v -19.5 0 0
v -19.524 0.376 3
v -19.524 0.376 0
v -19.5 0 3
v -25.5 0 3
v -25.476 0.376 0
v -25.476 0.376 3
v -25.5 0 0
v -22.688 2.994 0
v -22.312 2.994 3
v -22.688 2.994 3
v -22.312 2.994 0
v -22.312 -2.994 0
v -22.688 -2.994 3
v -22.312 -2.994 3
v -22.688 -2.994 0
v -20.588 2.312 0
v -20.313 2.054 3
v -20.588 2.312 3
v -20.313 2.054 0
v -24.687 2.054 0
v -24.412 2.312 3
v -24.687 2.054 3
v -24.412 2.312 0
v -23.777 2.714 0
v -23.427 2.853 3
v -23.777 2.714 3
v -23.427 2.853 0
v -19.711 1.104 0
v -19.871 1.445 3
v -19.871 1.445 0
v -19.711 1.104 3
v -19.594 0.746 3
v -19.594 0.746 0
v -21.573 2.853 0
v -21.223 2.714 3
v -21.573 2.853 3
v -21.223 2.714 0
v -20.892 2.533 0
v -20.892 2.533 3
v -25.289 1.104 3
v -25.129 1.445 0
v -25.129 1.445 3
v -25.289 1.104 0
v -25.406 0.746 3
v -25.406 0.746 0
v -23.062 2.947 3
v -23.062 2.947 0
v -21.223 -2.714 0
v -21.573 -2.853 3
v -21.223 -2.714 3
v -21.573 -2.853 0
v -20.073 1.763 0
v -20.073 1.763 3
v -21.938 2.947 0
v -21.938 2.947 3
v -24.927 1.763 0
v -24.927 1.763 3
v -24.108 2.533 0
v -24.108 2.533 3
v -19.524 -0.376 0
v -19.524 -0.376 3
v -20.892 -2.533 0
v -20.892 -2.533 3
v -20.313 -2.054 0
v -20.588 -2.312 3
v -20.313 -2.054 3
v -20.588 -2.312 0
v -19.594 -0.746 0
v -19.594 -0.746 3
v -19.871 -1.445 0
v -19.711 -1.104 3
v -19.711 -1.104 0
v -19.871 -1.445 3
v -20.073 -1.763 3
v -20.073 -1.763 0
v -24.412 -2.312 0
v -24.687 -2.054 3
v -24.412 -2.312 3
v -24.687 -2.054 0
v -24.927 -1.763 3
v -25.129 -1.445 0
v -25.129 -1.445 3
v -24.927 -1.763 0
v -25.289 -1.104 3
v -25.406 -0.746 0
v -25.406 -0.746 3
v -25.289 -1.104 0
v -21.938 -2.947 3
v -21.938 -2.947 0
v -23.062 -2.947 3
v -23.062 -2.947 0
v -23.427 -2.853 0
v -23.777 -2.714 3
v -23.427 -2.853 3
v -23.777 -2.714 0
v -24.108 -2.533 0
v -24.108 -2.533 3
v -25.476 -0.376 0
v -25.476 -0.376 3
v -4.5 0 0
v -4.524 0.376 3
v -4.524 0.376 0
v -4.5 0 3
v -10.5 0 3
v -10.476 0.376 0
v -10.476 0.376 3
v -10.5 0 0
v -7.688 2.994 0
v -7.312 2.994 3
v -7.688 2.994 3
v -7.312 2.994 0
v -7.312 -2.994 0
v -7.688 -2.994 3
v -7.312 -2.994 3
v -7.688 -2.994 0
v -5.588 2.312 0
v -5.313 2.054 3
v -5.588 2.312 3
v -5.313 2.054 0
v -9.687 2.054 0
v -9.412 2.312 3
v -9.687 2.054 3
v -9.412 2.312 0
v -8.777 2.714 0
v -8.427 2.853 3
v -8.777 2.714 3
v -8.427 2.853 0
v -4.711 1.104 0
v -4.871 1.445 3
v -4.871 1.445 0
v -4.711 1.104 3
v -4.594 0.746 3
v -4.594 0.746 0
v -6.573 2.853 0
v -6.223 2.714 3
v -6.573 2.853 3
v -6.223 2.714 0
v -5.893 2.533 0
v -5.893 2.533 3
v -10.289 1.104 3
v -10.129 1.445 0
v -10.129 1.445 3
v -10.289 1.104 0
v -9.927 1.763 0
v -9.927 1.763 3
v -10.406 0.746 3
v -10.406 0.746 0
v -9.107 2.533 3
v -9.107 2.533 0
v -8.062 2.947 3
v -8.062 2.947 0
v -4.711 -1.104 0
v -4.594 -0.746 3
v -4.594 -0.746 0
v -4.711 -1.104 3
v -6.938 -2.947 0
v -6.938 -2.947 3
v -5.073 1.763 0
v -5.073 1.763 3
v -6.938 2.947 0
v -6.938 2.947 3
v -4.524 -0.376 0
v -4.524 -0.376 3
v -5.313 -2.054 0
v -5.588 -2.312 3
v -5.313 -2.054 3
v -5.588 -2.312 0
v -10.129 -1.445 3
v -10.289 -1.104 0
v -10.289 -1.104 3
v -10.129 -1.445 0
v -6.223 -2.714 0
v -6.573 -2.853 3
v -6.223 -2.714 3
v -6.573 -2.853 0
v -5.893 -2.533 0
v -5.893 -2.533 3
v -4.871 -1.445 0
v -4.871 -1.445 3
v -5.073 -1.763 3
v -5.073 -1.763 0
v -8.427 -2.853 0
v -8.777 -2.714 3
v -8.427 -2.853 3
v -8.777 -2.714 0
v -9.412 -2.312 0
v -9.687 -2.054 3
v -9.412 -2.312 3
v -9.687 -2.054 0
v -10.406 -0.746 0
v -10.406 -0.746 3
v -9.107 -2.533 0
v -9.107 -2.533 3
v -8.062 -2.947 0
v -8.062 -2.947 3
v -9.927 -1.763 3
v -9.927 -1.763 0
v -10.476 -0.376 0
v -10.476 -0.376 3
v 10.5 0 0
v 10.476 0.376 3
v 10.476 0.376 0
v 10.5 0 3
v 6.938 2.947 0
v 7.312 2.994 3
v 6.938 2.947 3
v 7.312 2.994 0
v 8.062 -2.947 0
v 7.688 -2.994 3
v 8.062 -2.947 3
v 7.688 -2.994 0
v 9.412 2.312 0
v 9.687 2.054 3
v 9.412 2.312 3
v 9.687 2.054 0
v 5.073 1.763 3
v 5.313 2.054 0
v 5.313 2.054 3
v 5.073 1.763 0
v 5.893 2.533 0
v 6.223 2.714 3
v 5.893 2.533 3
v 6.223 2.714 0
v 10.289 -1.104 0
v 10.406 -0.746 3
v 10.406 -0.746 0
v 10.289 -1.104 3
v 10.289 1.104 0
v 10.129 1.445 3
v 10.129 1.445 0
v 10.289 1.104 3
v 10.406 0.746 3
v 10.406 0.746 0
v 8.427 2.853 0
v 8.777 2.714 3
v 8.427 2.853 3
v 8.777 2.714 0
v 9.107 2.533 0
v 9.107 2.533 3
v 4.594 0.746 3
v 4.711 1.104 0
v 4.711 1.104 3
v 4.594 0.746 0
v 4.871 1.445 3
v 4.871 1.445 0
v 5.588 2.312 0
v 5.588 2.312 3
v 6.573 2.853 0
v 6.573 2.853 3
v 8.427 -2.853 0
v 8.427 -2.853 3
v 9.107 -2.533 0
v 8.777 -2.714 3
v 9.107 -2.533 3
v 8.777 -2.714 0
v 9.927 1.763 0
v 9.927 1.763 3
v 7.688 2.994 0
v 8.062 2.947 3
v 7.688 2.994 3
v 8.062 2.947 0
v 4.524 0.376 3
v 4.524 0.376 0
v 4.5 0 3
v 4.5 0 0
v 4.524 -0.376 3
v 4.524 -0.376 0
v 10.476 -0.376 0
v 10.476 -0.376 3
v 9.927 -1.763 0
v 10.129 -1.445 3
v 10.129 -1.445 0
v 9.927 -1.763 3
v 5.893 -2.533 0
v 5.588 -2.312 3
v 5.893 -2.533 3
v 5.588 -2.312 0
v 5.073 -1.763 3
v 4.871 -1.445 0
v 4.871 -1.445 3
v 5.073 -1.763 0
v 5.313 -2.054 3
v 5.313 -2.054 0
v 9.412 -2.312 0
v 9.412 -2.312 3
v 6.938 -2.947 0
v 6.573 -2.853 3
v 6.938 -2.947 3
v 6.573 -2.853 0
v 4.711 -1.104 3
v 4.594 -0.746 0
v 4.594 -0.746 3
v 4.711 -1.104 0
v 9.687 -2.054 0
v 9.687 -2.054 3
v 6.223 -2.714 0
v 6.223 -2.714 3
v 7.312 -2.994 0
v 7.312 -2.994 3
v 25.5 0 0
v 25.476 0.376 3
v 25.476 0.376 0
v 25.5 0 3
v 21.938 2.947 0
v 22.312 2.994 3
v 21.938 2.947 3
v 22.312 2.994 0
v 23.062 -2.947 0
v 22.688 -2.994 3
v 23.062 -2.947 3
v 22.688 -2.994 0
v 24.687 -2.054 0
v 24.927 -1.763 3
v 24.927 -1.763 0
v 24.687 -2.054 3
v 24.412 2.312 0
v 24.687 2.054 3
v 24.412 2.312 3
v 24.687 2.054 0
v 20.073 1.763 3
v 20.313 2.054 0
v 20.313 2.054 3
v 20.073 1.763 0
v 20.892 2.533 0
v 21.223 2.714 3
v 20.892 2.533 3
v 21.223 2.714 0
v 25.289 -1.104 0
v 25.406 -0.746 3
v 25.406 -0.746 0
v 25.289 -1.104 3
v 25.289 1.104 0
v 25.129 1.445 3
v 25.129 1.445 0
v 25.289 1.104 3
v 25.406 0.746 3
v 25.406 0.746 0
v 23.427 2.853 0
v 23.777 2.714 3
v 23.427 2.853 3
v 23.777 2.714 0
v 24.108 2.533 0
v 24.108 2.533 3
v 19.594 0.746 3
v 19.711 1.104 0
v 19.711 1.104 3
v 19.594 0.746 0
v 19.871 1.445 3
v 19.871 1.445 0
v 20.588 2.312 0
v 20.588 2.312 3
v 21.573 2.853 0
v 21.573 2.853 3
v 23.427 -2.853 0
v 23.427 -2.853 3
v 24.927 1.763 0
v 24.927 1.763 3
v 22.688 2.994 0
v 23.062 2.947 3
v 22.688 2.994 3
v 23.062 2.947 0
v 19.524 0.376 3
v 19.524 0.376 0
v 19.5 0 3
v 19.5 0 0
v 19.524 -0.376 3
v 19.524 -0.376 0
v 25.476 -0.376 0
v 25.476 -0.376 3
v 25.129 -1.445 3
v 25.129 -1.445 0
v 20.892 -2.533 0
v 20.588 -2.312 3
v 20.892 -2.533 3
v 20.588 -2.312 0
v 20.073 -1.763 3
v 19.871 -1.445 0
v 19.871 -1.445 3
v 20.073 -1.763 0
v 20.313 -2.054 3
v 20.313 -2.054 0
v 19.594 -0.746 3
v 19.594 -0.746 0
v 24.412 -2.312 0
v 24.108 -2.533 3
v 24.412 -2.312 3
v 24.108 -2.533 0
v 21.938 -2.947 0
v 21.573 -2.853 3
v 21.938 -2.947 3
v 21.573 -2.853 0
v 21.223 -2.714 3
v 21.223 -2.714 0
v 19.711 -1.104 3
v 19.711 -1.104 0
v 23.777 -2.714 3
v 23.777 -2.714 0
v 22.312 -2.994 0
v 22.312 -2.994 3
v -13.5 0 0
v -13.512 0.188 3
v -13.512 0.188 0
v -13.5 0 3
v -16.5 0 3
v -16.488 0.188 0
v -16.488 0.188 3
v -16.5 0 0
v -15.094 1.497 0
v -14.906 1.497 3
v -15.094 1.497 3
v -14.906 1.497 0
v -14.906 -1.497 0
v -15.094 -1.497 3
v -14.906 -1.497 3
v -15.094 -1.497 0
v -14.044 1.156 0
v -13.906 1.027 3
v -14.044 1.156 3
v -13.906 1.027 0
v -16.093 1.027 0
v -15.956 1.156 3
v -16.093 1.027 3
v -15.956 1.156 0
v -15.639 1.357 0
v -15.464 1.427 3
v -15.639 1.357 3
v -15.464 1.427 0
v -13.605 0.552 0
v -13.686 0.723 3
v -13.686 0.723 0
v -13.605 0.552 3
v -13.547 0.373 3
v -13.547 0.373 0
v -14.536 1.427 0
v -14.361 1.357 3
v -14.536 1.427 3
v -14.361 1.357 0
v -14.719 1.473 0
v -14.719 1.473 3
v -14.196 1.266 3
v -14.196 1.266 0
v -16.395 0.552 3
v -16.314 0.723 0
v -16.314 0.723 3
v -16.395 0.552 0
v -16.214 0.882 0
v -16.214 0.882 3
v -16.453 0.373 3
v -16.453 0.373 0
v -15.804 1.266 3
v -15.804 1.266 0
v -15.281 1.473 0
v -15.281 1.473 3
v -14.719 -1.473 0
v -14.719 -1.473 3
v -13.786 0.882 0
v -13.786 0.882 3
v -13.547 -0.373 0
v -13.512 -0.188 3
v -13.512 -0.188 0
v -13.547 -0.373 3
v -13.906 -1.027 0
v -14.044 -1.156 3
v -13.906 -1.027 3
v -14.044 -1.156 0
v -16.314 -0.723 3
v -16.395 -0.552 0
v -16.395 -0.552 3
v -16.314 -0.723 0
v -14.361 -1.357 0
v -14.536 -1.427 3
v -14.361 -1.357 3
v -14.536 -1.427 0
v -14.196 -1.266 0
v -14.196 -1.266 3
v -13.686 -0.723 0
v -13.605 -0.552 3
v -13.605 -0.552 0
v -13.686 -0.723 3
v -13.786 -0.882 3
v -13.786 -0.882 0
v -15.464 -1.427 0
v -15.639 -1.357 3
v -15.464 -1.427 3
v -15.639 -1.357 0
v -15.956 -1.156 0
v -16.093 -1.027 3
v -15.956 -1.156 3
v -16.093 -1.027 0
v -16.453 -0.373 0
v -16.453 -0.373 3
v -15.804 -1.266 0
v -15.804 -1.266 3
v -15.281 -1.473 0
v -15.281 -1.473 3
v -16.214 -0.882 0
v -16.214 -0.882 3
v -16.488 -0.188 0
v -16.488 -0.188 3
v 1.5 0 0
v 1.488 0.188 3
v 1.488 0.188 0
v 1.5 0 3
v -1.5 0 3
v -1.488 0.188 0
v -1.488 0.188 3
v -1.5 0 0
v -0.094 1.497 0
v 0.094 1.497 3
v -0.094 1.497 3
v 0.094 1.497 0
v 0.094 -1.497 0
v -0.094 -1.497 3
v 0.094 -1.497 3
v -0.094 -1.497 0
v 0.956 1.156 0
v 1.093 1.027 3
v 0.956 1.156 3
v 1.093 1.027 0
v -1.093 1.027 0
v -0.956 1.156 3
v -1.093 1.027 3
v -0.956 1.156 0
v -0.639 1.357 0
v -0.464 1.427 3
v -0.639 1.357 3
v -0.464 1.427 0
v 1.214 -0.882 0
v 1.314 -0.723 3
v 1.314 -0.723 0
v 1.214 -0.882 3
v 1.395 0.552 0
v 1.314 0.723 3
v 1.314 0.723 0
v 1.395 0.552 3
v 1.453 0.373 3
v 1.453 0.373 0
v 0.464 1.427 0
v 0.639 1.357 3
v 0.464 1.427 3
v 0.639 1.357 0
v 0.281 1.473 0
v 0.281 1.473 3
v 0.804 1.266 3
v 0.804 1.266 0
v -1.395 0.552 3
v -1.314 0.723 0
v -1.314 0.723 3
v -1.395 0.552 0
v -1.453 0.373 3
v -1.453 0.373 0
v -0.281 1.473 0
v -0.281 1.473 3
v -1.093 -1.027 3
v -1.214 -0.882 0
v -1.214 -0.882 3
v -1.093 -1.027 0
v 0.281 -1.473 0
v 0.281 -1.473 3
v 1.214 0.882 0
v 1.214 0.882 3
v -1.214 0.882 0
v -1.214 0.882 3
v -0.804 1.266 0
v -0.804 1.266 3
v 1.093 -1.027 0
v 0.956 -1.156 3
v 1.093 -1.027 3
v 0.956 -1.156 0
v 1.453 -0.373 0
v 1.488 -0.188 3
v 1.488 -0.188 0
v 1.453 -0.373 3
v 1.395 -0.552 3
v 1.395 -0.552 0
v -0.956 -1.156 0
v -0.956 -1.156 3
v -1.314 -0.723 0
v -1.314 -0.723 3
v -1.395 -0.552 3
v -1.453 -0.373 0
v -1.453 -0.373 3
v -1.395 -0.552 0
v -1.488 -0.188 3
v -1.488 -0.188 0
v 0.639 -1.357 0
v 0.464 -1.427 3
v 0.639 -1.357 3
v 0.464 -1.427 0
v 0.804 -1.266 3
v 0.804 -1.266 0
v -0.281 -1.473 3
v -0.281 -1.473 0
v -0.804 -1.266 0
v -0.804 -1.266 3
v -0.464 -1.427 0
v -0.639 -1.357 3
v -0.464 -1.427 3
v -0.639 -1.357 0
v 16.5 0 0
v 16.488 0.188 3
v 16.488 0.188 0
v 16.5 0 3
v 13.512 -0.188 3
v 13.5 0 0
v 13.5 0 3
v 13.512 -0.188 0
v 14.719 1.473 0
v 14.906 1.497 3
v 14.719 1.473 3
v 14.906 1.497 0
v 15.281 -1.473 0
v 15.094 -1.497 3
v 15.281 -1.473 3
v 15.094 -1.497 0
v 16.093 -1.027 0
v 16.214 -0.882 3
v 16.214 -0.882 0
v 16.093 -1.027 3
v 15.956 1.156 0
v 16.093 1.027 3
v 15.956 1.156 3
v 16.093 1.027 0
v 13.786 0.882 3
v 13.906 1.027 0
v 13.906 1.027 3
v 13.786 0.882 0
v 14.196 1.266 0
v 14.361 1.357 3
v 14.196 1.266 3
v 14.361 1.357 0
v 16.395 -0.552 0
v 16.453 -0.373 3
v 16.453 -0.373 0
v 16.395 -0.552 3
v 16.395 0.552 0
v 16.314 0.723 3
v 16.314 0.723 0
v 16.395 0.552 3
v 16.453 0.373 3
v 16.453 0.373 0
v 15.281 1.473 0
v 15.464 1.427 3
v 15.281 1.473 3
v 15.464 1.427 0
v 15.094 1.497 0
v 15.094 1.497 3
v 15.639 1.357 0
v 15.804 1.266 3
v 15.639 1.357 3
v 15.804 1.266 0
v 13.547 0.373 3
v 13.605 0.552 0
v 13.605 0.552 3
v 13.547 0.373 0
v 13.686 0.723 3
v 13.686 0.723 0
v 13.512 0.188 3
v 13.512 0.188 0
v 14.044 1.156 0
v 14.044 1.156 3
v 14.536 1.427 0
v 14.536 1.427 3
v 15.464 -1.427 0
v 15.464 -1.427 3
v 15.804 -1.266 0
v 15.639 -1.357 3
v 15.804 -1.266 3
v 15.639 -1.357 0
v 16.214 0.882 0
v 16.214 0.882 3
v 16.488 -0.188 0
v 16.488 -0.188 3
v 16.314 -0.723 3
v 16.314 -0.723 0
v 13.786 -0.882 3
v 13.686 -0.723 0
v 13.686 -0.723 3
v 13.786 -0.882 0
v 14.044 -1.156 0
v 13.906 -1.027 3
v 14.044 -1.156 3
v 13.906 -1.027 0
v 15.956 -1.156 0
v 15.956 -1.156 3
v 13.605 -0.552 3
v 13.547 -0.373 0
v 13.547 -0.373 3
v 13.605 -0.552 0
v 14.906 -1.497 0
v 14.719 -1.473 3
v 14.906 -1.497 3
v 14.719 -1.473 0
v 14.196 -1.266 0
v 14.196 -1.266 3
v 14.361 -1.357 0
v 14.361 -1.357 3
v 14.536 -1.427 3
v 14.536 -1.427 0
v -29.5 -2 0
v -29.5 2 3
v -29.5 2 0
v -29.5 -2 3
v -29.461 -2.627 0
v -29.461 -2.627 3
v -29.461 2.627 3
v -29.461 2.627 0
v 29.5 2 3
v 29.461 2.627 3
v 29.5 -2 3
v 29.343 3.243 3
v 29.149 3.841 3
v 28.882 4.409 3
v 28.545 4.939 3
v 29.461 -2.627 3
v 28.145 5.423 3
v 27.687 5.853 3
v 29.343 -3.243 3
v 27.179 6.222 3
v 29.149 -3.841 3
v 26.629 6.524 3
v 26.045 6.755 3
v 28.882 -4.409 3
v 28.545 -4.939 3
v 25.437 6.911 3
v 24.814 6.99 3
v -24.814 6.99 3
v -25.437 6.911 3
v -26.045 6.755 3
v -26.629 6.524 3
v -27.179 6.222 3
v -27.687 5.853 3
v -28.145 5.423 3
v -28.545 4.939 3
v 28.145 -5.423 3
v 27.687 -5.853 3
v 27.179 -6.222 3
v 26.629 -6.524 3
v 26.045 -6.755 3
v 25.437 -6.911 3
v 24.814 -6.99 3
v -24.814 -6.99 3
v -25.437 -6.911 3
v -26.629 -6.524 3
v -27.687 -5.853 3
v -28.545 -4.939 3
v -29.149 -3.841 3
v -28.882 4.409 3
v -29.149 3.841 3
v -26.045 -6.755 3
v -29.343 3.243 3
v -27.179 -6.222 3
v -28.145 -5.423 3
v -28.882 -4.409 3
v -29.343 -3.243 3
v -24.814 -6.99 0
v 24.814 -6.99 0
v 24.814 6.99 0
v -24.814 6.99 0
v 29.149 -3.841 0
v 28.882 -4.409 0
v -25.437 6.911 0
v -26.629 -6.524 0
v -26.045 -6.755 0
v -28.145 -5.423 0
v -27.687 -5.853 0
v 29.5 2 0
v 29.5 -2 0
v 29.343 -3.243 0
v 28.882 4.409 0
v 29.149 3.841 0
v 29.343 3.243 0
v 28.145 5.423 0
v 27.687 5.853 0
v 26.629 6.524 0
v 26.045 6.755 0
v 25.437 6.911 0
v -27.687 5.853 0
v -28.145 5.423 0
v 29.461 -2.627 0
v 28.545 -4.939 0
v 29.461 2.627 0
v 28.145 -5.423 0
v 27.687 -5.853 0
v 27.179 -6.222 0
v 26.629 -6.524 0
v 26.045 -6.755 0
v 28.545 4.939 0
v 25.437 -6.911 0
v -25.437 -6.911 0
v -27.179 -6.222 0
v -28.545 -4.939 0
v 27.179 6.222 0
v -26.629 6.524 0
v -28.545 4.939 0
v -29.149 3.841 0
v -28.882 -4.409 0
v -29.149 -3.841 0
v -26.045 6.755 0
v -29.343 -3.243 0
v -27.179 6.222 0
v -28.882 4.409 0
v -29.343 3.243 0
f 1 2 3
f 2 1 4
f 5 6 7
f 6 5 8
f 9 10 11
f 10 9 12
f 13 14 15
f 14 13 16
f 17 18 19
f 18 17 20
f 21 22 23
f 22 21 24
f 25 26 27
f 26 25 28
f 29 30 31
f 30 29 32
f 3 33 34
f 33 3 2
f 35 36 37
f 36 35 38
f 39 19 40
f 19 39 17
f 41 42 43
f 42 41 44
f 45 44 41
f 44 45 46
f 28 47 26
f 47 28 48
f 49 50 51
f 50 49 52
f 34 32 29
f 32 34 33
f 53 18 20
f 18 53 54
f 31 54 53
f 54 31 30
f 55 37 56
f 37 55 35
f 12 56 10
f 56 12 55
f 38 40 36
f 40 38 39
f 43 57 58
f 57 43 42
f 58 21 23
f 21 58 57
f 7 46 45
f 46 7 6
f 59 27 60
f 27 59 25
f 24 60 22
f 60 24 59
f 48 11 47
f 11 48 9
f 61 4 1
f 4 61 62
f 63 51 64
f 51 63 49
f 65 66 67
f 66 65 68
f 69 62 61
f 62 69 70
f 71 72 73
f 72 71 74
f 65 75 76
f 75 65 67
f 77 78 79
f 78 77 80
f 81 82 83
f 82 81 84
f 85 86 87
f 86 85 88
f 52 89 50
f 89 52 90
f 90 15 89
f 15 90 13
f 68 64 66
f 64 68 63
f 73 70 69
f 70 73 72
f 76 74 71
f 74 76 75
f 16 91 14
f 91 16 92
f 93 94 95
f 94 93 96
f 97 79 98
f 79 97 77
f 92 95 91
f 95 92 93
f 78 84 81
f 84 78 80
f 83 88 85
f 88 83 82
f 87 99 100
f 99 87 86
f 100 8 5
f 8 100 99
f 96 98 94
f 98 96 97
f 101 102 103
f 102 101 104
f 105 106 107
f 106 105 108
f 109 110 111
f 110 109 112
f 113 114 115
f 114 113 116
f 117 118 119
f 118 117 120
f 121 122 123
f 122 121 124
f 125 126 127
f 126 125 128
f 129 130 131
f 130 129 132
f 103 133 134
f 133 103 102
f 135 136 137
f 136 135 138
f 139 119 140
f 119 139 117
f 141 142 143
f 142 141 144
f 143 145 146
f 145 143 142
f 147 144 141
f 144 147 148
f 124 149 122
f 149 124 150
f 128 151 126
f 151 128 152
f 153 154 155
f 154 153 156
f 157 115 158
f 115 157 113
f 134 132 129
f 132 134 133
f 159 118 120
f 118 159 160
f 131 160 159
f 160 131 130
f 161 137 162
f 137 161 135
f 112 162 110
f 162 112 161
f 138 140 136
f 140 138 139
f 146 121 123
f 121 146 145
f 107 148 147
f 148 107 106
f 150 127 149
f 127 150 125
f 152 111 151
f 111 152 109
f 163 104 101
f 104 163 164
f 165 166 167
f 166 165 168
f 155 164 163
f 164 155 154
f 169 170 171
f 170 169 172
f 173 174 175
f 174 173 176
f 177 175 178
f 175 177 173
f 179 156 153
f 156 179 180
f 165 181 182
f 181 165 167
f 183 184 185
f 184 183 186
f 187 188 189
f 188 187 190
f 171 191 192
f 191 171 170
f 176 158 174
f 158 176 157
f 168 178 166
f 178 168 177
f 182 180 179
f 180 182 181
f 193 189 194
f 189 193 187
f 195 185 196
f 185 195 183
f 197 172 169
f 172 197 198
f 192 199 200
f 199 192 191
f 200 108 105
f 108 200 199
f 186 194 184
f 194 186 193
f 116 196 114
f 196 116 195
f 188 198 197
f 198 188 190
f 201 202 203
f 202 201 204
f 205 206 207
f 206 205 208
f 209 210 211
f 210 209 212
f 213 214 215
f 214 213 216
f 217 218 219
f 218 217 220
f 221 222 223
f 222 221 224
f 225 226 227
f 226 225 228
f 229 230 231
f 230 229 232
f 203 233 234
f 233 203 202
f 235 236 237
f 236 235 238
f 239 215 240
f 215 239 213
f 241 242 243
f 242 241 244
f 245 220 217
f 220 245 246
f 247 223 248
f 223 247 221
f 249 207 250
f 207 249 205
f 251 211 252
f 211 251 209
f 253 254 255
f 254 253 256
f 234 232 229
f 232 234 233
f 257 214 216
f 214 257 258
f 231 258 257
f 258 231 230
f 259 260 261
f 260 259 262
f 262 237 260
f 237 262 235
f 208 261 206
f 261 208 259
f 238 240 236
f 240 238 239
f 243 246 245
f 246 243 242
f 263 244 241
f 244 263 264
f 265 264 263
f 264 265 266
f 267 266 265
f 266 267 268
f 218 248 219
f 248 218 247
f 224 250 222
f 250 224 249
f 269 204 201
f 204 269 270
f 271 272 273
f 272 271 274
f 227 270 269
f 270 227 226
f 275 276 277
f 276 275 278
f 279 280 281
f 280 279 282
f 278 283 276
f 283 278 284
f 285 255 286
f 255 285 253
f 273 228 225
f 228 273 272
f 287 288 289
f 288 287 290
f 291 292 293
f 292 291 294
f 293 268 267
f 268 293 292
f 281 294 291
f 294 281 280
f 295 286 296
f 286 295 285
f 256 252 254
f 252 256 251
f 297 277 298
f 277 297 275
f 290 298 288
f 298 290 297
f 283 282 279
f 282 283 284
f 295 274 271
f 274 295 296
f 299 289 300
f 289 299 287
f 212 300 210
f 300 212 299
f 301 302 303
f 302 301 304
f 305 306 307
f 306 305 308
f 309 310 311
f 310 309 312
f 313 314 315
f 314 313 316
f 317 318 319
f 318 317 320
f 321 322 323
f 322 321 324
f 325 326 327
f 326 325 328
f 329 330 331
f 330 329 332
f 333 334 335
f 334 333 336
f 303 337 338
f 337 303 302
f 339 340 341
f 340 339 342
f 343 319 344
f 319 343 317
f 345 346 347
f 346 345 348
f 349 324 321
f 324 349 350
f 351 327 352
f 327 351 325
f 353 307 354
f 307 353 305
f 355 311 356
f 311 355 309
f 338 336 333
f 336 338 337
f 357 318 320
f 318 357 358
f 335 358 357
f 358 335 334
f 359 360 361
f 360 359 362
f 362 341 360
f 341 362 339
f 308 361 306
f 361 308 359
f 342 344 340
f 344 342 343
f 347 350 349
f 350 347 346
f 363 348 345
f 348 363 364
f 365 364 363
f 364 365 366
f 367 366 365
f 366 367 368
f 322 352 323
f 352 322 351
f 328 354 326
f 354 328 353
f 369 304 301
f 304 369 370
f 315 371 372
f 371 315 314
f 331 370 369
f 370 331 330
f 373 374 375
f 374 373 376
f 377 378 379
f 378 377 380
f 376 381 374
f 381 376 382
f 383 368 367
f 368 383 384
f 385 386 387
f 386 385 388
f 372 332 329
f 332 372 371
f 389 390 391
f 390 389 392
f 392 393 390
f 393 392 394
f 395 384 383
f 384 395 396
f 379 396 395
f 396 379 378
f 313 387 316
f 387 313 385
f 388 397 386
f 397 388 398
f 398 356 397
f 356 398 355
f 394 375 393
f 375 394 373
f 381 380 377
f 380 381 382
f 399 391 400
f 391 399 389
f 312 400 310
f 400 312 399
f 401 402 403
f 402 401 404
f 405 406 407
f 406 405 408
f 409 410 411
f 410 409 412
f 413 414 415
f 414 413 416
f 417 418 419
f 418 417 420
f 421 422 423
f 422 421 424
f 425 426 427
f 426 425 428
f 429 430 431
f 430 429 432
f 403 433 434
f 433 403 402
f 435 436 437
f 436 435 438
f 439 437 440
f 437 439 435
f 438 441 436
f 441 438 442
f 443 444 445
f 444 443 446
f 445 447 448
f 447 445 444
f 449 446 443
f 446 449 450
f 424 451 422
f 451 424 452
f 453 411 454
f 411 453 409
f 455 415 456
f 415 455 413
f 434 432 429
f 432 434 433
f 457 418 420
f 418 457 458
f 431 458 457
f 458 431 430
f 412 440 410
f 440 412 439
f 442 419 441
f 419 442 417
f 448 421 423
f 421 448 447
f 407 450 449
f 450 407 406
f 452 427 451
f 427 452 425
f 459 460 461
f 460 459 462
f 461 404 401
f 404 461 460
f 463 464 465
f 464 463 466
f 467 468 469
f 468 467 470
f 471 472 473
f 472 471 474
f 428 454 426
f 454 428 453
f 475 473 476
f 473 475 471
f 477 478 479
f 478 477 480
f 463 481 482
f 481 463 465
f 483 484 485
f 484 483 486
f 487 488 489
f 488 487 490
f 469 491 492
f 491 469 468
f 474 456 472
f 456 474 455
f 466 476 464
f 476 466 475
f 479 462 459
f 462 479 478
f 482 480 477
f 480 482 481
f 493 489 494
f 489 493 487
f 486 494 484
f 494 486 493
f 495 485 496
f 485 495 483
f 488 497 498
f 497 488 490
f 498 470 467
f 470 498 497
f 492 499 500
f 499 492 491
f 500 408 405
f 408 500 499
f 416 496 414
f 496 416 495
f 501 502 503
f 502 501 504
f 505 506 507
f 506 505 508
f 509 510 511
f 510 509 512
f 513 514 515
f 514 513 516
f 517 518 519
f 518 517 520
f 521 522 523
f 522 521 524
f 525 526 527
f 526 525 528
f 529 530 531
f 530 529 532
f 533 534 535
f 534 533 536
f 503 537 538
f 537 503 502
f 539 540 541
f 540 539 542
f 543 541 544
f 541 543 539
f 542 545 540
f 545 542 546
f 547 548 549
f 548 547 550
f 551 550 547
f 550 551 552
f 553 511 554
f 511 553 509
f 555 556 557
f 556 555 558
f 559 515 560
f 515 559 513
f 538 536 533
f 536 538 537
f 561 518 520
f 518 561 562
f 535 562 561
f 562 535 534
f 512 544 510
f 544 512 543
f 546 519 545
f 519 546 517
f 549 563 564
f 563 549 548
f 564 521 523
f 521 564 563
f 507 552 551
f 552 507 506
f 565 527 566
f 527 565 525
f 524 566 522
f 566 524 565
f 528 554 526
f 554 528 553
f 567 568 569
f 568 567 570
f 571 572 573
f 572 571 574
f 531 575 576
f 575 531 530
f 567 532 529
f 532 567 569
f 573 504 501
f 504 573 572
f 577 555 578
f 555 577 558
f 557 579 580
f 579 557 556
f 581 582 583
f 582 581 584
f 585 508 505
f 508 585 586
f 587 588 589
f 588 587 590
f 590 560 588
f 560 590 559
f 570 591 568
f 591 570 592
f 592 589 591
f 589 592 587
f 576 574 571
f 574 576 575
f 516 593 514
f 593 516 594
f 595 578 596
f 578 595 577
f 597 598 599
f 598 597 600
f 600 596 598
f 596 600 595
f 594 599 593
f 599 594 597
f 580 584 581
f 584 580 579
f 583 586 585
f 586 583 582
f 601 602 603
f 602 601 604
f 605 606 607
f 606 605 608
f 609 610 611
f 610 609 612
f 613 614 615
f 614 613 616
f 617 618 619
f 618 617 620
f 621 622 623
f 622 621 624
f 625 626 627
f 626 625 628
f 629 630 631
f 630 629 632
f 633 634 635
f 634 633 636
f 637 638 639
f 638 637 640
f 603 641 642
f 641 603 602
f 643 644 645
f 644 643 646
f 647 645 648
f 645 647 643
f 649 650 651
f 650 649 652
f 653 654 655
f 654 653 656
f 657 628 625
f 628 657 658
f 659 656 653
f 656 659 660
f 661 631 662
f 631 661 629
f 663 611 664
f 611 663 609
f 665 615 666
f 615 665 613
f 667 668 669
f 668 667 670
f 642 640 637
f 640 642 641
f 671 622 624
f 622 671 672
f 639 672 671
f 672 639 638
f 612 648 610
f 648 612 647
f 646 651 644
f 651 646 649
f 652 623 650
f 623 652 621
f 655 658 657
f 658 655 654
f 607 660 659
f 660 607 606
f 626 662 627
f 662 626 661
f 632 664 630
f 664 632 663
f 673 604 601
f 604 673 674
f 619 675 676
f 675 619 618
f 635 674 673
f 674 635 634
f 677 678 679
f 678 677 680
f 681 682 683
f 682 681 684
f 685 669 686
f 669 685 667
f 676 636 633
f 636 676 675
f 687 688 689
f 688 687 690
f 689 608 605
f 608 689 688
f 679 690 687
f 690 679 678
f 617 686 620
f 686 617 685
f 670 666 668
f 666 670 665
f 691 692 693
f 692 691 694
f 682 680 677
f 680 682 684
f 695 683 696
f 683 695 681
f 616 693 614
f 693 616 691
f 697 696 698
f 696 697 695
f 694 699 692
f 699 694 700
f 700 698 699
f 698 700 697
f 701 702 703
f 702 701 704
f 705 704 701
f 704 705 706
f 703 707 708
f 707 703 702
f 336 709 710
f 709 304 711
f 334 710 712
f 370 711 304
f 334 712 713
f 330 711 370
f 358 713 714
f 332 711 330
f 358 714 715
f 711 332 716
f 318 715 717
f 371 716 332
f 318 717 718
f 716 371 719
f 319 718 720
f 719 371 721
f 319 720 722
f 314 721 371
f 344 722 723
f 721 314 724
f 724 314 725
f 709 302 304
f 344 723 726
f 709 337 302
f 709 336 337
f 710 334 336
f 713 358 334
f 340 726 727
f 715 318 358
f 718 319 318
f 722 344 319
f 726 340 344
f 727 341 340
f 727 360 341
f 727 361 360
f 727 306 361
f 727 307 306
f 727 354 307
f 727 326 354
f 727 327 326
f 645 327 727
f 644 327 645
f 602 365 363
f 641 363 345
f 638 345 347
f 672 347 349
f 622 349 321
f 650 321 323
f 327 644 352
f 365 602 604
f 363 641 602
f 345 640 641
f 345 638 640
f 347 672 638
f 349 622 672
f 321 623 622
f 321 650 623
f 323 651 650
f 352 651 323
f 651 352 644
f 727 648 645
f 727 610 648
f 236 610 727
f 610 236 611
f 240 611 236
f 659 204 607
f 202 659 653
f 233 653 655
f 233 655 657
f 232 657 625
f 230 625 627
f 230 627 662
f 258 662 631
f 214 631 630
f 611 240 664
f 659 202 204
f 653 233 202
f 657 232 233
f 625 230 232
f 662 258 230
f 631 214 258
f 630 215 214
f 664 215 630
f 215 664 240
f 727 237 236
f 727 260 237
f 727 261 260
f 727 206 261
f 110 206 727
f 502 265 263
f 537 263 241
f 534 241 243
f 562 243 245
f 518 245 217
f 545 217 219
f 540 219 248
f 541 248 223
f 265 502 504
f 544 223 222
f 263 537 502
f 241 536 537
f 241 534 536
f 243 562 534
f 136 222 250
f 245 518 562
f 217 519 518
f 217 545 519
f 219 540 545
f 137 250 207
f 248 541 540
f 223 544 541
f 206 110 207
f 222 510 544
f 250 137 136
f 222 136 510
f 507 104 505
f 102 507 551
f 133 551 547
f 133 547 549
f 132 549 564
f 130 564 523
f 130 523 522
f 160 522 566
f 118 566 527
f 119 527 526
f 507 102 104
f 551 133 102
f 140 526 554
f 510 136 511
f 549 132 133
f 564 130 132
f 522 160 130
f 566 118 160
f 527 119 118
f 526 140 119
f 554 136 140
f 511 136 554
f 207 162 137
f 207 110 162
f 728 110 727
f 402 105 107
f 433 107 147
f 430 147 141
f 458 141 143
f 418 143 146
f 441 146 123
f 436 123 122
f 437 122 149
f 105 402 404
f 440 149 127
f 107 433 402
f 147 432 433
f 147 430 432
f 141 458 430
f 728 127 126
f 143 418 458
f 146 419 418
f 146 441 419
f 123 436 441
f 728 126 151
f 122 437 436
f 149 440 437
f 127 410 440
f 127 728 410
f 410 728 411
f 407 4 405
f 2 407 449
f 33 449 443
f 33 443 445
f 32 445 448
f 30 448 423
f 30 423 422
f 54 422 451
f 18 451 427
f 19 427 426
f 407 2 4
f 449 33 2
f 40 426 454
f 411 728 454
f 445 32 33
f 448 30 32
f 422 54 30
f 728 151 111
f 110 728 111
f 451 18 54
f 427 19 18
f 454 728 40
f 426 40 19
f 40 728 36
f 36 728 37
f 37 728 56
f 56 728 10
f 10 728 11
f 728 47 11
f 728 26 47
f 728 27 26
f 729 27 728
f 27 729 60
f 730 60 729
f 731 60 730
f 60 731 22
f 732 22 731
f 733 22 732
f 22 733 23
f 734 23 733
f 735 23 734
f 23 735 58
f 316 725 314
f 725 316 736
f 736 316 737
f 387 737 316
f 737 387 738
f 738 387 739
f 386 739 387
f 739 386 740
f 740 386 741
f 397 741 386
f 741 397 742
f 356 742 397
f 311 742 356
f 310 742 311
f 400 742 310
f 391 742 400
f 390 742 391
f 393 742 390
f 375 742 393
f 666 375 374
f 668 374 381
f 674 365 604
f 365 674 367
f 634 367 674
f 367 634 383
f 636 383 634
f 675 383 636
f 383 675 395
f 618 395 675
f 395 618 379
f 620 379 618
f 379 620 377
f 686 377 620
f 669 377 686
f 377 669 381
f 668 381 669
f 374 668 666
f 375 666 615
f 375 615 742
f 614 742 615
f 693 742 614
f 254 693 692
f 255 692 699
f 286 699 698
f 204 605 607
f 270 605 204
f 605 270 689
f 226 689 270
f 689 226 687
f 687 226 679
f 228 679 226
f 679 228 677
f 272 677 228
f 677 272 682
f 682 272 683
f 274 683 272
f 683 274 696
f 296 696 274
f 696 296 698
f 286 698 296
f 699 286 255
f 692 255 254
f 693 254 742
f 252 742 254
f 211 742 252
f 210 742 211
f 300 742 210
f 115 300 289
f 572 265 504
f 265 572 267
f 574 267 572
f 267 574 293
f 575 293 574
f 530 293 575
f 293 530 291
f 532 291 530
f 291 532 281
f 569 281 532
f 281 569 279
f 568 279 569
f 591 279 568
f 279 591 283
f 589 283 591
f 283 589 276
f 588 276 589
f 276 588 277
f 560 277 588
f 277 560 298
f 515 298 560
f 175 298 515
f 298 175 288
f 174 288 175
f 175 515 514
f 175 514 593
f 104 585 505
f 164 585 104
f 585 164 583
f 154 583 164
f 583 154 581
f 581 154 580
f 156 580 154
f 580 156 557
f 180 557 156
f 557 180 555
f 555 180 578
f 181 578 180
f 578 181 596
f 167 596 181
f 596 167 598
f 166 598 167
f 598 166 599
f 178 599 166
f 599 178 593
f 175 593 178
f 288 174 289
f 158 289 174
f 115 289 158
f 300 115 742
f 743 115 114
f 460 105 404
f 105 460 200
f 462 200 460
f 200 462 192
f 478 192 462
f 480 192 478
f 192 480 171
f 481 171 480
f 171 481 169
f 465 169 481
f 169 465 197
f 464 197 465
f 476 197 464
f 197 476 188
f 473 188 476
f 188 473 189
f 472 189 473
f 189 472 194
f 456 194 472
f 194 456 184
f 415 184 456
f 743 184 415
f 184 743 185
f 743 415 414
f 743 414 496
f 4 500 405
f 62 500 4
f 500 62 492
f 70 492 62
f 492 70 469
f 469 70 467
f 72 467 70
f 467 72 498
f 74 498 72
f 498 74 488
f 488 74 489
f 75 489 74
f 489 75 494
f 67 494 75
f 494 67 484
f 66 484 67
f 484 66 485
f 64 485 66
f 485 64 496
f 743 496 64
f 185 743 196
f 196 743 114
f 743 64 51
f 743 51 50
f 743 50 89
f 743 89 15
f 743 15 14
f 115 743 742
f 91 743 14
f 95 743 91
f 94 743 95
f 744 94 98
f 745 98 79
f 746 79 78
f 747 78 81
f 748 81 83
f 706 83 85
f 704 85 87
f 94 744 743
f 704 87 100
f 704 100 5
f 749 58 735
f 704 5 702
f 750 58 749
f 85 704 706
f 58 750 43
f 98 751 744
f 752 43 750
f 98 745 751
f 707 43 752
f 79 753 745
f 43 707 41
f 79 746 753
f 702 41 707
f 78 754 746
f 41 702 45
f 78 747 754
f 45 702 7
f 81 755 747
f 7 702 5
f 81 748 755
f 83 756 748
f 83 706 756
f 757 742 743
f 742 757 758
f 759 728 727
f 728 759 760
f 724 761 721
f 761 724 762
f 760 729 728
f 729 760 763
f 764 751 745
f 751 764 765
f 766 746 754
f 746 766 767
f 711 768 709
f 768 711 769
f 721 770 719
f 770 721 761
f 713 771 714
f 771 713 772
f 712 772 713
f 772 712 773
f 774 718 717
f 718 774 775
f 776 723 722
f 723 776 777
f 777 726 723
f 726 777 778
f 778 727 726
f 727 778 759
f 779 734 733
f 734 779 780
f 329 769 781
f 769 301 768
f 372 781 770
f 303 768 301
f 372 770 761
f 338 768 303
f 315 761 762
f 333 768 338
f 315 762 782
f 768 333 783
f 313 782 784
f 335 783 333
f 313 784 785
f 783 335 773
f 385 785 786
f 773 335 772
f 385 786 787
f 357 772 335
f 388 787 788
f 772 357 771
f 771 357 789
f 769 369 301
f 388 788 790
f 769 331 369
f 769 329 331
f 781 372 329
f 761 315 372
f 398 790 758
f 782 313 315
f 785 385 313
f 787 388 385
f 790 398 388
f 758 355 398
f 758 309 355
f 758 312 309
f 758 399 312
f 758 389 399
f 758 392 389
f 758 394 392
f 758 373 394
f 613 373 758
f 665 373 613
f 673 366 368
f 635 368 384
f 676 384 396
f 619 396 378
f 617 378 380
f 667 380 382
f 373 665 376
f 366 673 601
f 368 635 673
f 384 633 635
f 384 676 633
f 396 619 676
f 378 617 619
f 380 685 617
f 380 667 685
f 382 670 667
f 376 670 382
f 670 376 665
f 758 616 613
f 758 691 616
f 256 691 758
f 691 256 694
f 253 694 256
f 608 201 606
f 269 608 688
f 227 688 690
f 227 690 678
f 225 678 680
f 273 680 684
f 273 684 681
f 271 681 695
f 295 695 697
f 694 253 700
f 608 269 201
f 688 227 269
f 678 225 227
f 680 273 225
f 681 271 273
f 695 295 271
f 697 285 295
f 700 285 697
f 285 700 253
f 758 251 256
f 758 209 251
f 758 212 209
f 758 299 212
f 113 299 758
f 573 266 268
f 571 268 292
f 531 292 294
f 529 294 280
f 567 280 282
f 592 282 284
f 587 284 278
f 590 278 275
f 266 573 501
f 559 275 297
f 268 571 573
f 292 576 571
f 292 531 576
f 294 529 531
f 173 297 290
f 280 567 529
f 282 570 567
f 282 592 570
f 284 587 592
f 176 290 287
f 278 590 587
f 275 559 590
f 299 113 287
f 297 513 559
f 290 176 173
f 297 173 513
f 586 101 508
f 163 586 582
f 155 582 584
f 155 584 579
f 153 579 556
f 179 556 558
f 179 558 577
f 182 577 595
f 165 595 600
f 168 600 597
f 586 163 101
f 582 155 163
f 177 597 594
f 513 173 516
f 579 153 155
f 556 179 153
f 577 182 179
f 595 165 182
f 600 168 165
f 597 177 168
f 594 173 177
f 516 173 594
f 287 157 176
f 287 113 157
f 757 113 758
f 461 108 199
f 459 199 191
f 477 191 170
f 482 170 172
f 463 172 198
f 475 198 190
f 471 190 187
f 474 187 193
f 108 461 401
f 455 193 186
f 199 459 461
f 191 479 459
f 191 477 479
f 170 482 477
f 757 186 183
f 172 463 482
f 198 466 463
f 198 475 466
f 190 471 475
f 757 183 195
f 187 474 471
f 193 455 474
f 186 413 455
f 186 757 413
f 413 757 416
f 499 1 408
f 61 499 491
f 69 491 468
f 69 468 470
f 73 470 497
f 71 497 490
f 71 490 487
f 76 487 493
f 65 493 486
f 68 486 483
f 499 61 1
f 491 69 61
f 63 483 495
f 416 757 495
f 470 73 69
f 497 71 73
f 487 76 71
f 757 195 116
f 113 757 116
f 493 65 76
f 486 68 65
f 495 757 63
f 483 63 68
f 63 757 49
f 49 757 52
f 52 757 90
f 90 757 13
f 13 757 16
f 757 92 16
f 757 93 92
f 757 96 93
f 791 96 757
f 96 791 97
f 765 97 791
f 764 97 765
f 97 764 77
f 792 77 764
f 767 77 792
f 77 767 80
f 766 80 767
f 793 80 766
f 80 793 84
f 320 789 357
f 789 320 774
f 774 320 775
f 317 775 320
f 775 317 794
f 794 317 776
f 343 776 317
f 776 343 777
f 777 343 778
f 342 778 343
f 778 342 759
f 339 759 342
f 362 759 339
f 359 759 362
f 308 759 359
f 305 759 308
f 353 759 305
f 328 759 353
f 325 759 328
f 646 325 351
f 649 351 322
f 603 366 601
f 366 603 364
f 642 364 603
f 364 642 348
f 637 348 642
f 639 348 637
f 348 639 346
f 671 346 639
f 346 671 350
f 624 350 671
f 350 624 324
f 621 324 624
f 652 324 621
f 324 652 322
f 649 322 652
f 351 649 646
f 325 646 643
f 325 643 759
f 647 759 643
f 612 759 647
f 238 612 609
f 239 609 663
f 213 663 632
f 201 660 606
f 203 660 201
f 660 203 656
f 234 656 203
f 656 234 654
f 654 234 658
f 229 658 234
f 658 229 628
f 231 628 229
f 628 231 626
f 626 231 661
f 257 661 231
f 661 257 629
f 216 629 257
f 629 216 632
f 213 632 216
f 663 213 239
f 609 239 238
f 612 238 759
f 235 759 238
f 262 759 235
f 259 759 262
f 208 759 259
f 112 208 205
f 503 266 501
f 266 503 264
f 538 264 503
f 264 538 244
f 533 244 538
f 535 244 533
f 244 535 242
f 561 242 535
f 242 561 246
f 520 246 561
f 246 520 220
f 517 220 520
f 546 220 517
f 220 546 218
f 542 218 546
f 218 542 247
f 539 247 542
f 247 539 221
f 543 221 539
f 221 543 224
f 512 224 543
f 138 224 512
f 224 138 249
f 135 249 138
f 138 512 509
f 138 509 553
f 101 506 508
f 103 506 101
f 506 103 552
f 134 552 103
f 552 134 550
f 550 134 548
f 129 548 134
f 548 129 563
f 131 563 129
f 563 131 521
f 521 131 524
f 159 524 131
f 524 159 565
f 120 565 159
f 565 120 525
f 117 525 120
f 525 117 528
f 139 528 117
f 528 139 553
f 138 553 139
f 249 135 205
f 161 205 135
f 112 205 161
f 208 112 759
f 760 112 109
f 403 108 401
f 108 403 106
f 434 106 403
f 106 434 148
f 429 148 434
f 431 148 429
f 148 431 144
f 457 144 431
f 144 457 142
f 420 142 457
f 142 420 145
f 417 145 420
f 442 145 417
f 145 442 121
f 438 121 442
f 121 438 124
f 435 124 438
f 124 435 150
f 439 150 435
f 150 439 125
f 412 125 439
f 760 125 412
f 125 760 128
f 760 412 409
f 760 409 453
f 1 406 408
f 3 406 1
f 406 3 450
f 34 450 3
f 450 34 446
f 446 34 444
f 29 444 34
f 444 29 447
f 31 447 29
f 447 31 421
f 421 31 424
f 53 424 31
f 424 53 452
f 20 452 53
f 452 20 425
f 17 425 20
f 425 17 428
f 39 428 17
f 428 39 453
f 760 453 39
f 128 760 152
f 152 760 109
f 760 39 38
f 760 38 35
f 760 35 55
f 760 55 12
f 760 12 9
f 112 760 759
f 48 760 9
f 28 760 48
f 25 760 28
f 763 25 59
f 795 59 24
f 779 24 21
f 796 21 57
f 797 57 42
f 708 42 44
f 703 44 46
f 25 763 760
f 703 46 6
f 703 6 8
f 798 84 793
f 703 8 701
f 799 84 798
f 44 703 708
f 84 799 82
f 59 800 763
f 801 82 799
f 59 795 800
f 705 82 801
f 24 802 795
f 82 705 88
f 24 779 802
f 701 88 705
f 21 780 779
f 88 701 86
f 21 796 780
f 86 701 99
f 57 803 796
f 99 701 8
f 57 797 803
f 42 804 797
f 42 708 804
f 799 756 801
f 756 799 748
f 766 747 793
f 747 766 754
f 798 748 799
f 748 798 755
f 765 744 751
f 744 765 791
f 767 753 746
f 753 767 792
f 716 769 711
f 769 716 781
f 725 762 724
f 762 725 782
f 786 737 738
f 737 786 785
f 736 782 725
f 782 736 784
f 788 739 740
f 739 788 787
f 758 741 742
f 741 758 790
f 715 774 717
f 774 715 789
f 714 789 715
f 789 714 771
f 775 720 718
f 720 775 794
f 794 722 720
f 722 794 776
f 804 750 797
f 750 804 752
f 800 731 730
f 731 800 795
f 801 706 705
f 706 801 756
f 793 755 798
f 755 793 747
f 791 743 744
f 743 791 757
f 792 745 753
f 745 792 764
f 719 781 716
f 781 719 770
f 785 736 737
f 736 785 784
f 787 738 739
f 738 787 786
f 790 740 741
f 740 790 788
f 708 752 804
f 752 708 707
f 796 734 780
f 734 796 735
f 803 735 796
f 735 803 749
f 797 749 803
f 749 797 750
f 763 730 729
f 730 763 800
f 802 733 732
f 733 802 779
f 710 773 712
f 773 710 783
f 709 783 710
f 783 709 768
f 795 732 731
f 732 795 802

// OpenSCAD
$fn = 50;


difference() {
	union() {
		translate(v = [0, 0, 0]) {
			rotate(a = [0, 0, 0]) {
				hull() {
					translate(v = [-24.5000000000, 2.0000000000, 0]) {
						rotate(a = [0, 0, 0]) {
							translate(v = [0, 0, 0]) {
								rotate(a = [0, 0, 0]) {
									cylinder(h = 3, r = 5);
								}
							}
						}
					}
					translate(v = [24.5000000000, 2.0000000000, 0]) {
						rotate(a = [0, 0, 0]) {
							translate(v = [0, 0, 0]) {
								rotate(a = [0, 0, 0]) {
									cylinder(h = 3, r = 5);
								}
							}
						}
					}
					translate(v = [-24.5000000000, -2.0000000000, 0]) {
						rotate(a = [0, 0, 0]) {
							translate(v = [0, 0, 0]) {
								rotate(a = [0, 0, 0]) {
									cylinder(h = 3, r = 5);
								}
							}
						}
					}
					translate(v = [24.5000000000, -2.0000000000, 0]) {
						rotate(a = [0, 0, 0]) {
							translate(v = [0, 0, 0]) {
								rotate(a = [0, 0, 0]) {
									cylinder(h = 3, r = 5);
								}
							}
						}
					}
				}
			}
		}
	}
	union() {
		translate(v = [-22.5000000000, 0.0000000000, 0]) {
			rotate(a = [0, 0, 0]) {
				translate(v = [0, 0, -50]) {
					rotate(a = [0, 0, 0]) {
						cylinder(h = 100, r = 3.0000000000);
					}
				}
			}
		}
		translate(v = [-7.5000000000, 0.0000000000, 0]) {
			rotate(a = [0, 0, 0]) {
				translate(v = [0, 0, -50]) {
					rotate(a = [0, 0, 0]) {
						cylinder(h = 100, r = 3.0000000000);
					}
				}
			}
		}
		translate(v = [7.5000000000, 0.0000000000, 0]) {
			rotate(a = [0, 0, 0]) {
				translate(v = [0, 0, -50]) {
					rotate(a = [0, 0, 0]) {
						cylinder(h = 100, r = 3.0000000000);
					}
				}
			}
		}
		translate(v = [22.5000000000, 0.0000000000, 0]) {
			rotate(a = [0, 0, 0]) {
				translate(v = [0, 0, -50]) {
					rotate(a = [0, 0, 0]) {
						cylinder(h = 100, r = 3.0000000000);
					}
				}
			}
		}
		translate(v = [-22.5000000000, 0.0000000000, 0]) {
			rotate(a = [0, 0, 0]) {
				translate(v = [0, 0, -50]) {
					rotate(a = [0, 0, 0]) {
						cylinder(h = 100, r = 1.5000000000);
					}
				}
			}
		}
		translate(v = [-15.0000000000, 0.0000000000, 0]) {
			rotate(a = [0, 0, 0]) {
				translate(v = [0, 0, -50]) {
					rotate(a = [0, 0, 0]) {
						cylinder(h = 100, r = 1.5000000000);
					}
				}
			}
		}
		translate(v = [-7.5000000000, 0.0000000000, 0]) {
			rotate(a = [0, 0, 0]) {
				translate(v = [0, 0, -50]) {
					rotate(a = [0, 0, 0]) {
						cylinder(h = 100, r = 1.5000000000);
					}
				}
			}
		}
		translate(v = [0.0000000000, 0.0000000000, 0]) {
			rotate(a = [0, 0, 0]) {
				translate(v = [0, 0, -50]) {
					rotate(a = [0, 0, 0]) {
						cylinder(h = 100, r = 1.5000000000);
					}
				}
			}
		}
		translate(v = [7.5000000000, 0.0000000000, 0]) {
			rotate(a = [0, 0, 0]) {
				translate(v = [0, 0, -50]) {
					rotate(a = [0, 0, 0]) {
						cylinder(h = 100, r = 1.5000000000);
					}
				}
			}
		}
		translate(v = [15.0000000000, 0.0000000000, 0]) {
			rotate(a = [0, 0, 0]) {
				translate(v = [0, 0, -50]) {
					rotate(a = [0, 0, 0]) {
						cylinder(h = 100, r = 1.5000000000);
					}
				}
			}
		}
		translate(v = [22.5000000000, 0.0000000000, 0]) {
			rotate(a = [0, 0, 0]) {
				translate(v = [0, 0, -50]) {
					rotate(a = [0, 0, 0]) {
						cylinder(h = 100, r = 1.5000000000);
					}
				}
			}
		}
	}
}
